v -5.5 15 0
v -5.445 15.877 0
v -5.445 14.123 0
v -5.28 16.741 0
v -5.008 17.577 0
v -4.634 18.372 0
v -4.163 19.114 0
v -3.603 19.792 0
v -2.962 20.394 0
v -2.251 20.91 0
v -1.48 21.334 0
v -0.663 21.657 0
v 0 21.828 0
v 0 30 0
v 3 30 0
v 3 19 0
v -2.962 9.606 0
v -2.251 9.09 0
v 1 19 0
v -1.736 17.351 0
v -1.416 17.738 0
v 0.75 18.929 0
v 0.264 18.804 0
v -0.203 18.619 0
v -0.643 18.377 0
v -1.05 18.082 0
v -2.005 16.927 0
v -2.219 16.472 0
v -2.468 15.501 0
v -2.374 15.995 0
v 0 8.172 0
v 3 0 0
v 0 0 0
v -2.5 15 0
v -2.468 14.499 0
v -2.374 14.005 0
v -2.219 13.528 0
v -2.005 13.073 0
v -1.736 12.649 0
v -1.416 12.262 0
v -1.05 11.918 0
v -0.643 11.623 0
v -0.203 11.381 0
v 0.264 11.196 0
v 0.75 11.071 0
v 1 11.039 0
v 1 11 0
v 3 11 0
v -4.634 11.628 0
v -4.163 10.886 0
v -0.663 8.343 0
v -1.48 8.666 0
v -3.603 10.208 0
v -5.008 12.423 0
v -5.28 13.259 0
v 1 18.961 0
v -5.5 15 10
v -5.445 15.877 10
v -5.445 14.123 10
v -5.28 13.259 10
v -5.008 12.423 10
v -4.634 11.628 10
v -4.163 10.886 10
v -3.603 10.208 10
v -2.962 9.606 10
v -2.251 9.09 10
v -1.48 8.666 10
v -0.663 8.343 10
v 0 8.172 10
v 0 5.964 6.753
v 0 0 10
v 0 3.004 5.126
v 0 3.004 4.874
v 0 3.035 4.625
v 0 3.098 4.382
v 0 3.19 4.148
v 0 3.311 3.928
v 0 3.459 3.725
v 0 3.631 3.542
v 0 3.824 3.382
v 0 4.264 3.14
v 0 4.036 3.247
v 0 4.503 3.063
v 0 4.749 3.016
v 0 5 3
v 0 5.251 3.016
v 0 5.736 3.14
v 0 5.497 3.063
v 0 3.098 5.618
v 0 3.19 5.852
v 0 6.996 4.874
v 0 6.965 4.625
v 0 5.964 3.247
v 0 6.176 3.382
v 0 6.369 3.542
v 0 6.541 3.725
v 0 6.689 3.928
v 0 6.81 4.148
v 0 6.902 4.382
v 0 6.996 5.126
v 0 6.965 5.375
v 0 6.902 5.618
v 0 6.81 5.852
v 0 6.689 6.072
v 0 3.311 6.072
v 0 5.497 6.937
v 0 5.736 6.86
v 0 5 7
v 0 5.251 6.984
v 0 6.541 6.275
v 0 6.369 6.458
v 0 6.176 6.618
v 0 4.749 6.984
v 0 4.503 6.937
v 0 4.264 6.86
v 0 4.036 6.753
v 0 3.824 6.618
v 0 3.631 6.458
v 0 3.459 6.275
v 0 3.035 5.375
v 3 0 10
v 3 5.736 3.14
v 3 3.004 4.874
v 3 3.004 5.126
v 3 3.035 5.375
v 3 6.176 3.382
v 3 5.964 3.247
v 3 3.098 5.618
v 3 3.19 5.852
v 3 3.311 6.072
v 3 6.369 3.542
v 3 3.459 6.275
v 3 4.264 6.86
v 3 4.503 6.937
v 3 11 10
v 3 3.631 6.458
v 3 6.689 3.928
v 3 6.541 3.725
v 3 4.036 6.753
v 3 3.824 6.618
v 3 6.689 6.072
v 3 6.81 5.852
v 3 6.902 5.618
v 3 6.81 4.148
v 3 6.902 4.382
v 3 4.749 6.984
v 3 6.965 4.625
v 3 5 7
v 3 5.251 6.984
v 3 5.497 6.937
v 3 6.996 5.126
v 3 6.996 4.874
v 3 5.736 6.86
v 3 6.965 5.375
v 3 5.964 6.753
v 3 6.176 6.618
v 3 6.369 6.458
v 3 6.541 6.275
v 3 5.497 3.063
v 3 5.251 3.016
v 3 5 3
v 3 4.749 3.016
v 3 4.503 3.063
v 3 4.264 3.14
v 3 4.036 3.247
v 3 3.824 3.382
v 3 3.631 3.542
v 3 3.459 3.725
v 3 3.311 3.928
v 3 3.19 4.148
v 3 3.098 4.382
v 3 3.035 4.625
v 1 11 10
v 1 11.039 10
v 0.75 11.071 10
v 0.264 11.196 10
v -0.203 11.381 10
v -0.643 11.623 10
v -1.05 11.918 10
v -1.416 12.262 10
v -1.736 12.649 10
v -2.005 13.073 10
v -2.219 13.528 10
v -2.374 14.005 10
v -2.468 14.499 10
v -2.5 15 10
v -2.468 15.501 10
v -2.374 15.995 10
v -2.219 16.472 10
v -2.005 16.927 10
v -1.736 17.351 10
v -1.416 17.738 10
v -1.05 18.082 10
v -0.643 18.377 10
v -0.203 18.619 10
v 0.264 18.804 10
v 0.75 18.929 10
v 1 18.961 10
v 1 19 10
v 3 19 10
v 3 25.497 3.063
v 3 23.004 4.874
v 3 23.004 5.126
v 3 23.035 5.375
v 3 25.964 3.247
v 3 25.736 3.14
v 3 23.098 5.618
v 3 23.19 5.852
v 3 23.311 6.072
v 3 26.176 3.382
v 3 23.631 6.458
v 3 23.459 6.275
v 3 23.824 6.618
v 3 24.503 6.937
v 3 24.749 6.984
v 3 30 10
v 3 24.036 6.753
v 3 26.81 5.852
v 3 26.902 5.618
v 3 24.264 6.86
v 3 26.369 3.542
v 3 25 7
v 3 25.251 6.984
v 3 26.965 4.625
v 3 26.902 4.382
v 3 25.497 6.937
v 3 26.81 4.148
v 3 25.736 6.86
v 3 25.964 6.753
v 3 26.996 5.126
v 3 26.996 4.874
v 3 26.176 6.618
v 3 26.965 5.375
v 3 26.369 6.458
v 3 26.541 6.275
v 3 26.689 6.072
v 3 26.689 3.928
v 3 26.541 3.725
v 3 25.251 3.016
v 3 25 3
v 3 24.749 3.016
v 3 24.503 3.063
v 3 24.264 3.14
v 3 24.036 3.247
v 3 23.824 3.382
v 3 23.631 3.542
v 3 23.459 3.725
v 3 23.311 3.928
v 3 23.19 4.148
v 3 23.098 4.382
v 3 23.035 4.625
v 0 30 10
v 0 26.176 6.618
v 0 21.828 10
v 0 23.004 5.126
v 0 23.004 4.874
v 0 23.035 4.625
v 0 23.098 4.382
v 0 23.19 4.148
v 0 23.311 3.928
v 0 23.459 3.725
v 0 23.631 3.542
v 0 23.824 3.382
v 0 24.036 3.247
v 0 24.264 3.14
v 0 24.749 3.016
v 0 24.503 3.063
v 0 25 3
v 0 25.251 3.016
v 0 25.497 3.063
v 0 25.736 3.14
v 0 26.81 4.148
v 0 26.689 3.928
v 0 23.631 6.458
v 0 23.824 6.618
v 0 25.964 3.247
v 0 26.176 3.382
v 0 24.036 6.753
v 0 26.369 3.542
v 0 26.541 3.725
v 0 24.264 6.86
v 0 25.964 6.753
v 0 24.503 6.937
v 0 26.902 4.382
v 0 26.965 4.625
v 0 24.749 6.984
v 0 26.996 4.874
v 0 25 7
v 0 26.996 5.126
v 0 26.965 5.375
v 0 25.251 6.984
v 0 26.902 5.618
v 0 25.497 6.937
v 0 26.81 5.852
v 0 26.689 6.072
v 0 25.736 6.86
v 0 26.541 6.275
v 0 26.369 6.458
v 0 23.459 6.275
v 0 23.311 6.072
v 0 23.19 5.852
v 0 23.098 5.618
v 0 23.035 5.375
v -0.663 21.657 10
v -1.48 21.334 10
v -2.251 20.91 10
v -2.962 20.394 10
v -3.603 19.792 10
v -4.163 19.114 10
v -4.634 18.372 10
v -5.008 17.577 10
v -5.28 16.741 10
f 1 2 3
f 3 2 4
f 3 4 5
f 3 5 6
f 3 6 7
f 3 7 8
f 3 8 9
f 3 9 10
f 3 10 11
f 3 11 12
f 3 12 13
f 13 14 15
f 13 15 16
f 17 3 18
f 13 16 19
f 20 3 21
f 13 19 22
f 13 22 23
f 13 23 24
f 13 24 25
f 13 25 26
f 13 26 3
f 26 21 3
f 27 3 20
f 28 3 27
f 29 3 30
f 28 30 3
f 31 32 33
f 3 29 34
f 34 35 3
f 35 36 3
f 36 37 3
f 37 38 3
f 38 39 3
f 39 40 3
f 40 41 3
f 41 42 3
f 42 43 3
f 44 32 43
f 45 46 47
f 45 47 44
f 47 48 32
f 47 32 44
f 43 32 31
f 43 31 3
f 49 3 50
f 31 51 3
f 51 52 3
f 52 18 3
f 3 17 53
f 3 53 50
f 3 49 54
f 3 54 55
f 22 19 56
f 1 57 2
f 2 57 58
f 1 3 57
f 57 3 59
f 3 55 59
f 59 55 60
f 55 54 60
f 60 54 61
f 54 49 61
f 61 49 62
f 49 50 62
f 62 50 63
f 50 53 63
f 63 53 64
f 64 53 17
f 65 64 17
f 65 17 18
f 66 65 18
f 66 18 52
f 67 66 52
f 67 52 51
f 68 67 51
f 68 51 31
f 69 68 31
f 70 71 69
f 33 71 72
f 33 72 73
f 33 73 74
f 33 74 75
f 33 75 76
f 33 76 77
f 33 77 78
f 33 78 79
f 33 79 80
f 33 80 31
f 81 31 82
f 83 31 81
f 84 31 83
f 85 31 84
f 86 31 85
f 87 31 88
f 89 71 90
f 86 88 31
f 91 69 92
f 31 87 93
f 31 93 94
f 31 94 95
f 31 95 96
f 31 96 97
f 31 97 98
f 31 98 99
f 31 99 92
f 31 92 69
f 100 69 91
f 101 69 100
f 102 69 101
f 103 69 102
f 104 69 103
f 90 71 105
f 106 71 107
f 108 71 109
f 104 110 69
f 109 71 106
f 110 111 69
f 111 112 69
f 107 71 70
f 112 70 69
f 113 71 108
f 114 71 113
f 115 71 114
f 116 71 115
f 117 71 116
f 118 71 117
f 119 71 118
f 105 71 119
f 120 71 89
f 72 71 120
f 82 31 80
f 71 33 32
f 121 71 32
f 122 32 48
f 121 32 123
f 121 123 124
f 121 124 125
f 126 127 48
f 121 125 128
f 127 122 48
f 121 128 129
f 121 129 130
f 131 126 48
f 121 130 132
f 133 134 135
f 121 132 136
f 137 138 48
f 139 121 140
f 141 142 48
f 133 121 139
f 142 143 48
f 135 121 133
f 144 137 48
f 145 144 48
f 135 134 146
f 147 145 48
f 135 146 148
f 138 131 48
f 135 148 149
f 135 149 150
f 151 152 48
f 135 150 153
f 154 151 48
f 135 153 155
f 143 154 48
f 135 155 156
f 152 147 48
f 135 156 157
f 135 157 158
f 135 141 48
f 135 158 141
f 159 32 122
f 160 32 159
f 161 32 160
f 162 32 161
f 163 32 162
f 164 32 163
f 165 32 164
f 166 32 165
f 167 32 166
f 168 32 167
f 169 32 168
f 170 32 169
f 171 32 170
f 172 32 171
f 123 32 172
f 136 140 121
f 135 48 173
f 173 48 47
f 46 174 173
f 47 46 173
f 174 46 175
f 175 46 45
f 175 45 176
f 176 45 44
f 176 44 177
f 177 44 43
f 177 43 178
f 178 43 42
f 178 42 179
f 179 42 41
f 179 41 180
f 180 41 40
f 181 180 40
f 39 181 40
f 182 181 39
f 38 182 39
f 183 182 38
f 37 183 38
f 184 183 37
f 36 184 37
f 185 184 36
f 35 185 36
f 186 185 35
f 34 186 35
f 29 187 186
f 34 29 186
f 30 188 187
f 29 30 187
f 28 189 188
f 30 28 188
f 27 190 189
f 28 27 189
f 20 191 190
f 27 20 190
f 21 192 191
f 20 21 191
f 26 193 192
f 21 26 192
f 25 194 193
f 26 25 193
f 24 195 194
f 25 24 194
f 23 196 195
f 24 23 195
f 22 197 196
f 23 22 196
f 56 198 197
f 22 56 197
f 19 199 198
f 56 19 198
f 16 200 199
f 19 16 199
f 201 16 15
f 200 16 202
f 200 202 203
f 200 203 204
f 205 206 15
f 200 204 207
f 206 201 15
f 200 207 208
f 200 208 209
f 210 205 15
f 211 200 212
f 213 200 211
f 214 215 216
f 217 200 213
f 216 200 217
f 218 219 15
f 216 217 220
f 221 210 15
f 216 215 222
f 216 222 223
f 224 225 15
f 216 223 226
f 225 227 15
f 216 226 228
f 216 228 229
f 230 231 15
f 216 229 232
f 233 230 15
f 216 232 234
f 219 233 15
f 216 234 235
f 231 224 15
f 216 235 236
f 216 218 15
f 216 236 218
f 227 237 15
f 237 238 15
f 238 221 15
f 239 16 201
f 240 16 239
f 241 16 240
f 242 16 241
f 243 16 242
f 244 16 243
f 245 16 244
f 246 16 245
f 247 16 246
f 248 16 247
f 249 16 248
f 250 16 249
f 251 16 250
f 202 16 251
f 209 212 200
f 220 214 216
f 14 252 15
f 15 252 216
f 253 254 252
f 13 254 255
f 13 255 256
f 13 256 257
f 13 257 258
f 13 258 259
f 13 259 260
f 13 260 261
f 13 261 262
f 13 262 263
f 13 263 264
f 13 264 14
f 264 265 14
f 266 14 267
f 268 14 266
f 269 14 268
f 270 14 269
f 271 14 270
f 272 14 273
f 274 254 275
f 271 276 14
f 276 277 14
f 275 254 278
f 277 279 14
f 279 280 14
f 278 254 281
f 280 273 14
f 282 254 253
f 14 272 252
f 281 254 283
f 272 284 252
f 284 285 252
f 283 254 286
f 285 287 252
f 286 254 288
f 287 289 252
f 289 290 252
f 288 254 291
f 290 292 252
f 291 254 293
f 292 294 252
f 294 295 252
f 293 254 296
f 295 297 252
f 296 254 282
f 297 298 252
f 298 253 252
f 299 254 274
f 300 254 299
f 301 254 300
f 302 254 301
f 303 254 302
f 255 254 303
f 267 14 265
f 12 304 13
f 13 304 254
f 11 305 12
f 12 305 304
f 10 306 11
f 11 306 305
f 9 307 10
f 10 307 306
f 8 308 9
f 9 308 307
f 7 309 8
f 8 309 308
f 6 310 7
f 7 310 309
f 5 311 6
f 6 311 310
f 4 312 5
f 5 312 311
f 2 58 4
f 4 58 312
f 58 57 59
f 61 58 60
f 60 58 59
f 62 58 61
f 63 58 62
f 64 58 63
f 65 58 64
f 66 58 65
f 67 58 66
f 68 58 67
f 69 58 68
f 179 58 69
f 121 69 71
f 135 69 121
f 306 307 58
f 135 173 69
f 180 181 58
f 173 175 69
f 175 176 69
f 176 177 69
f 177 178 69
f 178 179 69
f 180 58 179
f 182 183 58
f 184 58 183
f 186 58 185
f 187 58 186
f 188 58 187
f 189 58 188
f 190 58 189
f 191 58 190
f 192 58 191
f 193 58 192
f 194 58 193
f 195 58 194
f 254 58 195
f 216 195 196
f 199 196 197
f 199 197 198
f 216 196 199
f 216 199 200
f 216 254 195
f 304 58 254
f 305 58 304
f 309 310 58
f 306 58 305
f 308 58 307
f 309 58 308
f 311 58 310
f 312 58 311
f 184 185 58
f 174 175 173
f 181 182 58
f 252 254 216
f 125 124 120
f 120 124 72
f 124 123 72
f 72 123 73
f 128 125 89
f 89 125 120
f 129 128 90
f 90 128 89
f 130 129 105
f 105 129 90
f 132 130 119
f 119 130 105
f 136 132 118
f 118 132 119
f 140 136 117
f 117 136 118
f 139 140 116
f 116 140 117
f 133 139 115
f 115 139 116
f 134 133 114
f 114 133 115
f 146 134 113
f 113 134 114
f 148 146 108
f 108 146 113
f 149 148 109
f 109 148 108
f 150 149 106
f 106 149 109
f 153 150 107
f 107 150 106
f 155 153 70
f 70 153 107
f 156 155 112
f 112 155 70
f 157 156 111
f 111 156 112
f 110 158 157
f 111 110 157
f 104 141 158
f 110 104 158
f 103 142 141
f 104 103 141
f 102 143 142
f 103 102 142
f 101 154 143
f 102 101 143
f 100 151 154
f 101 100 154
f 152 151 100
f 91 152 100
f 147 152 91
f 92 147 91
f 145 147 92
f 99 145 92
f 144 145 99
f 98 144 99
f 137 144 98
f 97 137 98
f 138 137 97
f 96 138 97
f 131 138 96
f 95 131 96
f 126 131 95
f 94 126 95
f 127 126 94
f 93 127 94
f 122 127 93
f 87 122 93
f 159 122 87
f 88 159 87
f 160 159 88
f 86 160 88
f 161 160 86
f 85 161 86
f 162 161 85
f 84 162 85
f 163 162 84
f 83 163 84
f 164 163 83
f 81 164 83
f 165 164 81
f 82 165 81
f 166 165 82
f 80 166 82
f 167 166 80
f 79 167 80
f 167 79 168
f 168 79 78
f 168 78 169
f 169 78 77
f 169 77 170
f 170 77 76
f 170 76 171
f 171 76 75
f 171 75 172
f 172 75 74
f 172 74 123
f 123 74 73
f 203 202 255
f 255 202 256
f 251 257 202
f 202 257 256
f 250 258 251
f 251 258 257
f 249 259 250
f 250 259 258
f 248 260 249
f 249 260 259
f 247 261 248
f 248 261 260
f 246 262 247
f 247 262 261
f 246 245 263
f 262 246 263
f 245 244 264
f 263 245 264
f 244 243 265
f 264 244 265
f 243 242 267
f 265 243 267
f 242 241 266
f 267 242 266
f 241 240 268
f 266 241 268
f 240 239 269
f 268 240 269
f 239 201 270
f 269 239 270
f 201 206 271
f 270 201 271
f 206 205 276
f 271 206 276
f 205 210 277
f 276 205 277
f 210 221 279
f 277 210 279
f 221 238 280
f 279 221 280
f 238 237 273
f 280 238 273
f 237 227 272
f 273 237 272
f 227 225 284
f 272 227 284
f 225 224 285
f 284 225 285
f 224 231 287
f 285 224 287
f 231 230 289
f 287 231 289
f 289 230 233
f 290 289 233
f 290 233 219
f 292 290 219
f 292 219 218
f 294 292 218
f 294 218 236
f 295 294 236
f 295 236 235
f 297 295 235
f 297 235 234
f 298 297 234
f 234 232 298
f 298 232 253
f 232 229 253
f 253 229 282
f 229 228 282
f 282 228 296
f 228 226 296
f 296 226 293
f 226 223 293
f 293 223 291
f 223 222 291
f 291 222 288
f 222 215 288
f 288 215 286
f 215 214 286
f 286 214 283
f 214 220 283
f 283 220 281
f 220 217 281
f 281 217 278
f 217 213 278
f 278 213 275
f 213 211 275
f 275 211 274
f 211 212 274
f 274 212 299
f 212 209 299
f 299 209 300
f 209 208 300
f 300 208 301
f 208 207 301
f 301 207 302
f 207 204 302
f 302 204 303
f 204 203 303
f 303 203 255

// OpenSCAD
longueur=30;
hauteur=10;
ep=3;
r_m3=2;
r_gaine=4;

module clip_plateau(){
	difference(){
		union(){
			cube([ep,longueur,hauteur]);
			translate([ep/2,longueur/2,0]){cylinder(h = hauteur, r = r_gaine+ep, $fn=50);}
		}
		translate([ep/2,longueur/2,-5]){cylinder(h = hauteur+10, r = r_gaine, $fn=50);}
		translate([ep,-5,-5]){cube([10,longueur+10,hauteur+10]);}
		translate([ep-2,longueur/2-r_gaine,-5]){cube([10,5,hauteur+10]);}
		translate([ep-2,longueur/2+r_gaine-5,-5]){cube([10,5,hauteur+10]);}

		//trous M3
		translate([-5,5,hauteur/2]){rotate([0,90,0])cylinder(h = 10, r = r_m3, $fn=50);}
		translate([-5,longueur-5,hauteur/2]){rotate([0,90,0])cylinder(h = 10, r = r_m3, $fn=50);}

	}
}
clip_plateau();
